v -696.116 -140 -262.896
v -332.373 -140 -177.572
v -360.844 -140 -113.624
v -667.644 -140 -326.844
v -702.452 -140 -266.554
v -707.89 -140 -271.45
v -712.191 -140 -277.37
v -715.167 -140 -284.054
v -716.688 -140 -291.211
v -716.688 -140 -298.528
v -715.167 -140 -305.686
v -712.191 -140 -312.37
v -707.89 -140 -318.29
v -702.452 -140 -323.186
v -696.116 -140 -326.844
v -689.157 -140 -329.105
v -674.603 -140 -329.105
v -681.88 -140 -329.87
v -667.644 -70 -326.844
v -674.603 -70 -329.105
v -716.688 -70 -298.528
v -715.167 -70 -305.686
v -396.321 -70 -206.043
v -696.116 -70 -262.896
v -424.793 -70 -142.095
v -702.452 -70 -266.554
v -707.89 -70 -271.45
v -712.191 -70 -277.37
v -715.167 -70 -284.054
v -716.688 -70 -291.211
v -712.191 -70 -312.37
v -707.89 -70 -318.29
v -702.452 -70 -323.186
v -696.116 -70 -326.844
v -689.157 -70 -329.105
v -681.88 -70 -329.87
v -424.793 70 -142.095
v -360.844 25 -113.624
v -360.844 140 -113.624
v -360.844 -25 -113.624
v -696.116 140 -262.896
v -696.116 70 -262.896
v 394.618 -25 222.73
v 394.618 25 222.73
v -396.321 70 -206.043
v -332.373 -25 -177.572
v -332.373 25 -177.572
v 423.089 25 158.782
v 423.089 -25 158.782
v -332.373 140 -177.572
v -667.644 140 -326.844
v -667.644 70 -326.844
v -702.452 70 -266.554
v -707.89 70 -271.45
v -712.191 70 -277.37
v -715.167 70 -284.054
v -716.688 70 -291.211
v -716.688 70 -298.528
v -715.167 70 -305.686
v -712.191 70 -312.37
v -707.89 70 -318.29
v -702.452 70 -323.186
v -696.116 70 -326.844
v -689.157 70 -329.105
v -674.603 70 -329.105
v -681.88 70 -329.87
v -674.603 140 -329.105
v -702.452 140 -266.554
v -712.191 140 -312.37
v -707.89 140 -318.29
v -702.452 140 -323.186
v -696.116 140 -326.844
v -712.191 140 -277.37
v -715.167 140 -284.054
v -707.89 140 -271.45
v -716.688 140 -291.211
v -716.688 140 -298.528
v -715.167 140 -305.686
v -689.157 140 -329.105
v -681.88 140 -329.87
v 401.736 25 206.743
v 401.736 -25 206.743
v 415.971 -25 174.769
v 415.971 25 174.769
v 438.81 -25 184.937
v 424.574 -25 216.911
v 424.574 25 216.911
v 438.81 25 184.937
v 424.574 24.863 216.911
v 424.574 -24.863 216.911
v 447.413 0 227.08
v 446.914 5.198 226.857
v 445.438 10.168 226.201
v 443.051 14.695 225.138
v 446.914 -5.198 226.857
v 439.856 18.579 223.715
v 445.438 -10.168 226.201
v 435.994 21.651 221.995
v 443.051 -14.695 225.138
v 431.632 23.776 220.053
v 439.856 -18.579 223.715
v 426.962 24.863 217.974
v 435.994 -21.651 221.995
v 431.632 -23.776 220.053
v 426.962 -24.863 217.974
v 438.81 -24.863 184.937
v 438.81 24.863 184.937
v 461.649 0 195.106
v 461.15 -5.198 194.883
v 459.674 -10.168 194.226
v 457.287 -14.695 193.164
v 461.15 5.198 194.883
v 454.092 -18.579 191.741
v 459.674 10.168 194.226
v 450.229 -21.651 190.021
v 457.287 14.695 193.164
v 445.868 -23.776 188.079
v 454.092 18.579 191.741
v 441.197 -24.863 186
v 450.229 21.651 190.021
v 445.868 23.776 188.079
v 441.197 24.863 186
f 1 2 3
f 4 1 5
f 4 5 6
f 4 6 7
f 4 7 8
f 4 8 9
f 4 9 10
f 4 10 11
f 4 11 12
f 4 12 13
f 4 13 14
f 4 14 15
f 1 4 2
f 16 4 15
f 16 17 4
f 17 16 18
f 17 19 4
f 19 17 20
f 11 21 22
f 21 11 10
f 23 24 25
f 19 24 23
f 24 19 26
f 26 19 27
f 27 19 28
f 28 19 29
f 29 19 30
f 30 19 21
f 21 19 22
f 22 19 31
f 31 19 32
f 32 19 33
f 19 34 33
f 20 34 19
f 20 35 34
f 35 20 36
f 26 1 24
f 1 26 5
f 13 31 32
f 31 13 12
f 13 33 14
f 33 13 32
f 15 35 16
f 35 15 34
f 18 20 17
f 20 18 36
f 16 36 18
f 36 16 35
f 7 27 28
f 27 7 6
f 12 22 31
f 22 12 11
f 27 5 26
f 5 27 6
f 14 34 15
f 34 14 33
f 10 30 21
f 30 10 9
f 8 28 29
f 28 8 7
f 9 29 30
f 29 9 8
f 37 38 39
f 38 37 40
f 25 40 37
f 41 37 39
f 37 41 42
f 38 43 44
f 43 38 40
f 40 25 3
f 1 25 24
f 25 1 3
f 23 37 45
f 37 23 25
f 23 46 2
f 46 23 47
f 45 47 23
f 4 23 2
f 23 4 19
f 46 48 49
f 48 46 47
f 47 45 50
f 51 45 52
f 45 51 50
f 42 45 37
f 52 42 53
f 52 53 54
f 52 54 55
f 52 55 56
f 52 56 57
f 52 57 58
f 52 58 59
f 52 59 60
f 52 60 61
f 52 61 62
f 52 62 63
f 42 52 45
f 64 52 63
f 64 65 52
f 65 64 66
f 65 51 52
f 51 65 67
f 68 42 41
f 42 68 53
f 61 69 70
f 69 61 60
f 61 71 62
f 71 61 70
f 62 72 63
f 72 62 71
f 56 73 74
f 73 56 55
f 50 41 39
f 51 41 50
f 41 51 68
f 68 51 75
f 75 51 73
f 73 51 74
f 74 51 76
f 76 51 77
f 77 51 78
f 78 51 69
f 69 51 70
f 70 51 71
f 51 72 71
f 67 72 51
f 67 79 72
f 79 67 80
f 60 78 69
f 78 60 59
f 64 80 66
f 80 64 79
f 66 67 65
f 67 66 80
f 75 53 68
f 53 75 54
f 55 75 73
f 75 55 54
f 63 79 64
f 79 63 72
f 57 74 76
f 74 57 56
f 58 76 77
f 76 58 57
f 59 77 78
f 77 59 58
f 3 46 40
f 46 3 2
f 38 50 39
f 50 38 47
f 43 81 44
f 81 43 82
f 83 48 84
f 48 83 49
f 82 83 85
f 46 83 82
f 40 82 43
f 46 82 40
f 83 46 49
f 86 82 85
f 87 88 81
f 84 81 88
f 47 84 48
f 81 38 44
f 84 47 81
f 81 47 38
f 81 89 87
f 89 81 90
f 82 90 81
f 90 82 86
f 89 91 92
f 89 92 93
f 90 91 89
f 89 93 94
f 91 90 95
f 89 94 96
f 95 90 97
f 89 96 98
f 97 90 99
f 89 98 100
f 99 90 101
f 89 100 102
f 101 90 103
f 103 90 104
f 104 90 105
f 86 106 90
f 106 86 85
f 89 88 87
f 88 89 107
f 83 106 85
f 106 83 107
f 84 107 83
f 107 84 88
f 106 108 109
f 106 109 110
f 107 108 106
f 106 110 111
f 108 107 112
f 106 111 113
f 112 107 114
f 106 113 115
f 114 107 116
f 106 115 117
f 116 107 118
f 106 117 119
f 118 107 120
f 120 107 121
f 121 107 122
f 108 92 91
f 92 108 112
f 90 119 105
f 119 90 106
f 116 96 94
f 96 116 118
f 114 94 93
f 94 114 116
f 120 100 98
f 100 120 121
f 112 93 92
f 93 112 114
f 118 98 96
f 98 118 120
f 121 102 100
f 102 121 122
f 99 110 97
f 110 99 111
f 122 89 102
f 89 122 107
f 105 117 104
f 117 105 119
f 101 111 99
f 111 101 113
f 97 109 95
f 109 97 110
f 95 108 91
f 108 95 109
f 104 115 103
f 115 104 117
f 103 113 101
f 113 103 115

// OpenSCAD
module rear_chassis(
    front_crown_radius = 50,
    front_radius = 232,
    rear_crown_radius = 70,
    rear_radius = 227,
    rake = 26.5,
    caster = 24,
    wheelbase = 1370,
    com_offset = 681.8797,
    com_height = 591.87
) {
    d_radius = (front_radius + front_crown_radius)
             - (rear_radius + rear_crown_radius);

    rear_chassis_length = wheelbase*cos(caster) + d_radius*sin(caster) - rake - front_crown_radius/2;

    fork_length = rear_radius + 2 * rear_crown_radius;
    head_tube_length = rear_chassis_length - fork_length;

    translate(-[com_offset,0,com_height - (rear_radius + rear_crown_radius)])
    rotate([0,90 - caster,0])
    {
        // Left fork lower
        translate([0, -1.5 * rear_crown_radius, 0])
            rotate([90, 0, 0])
                cylinder(
                    h = rear_crown_radius,
                    r = rear_crown_radius / 2,
                    center = true
                );

        // Left fork leg
        translate([
            0,
            -1.5 * rear_crown_radius,
            (rear_radius + rear_crown_radius) / 2
        ])
            cube([
                rear_crown_radius,
                rear_crown_radius,
                rear_radius + rear_crown_radius
            ], center = true);

        // Right fork lower
        translate([0, 1.5 * rear_crown_radius, 0])
            rotate([90, 0, 0])
                cylinder(
                    h = rear_crown_radius,
                    r = rear_crown_radius / 2,
                    center = true
                );

        // Right fork leg
        translate([
            0,
            1.5 * rear_crown_radius,
            (rear_radius + rear_crown_radius) / 2
        ])
            cube([
                rear_crown_radius,
                rear_crown_radius,
                rear_radius + rear_crown_radius
            ], center = true);

        // Fork crown
        translate([0, 0, rear_radius + 1.5 * rear_crown_radius])
            cube([
                rear_crown_radius,
                4 * rear_crown_radius,
                rear_crown_radius
            ], center = true);

        // Head tube
        translate([
            0,
            0,
            head_tube_length / 2 + rear_radius + 2 * rear_crown_radius
        ])
            cube([
                rear_crown_radius,
                front_crown_radius,
                head_tube_length
            ], center = true);
            
        // Joint
        translate([
                0,
                0,
                fork_length + head_tube_length + front_crown_radius/4
            ])
            cube([rear_crown_radius/2,front_crown_radius,front_crown_radius/2],center = true);
        
        translate([
                0,
                0,
                fork_length + head_tube_length + front_crown_radius/2
            ])
            rotate([0,90,0])
                cylinder(h = rear_crown_radius/2, r = front_crown_radius/2 ,center = true);
    }
}

// rotate([0,90-24,0])
rear_chassis();
